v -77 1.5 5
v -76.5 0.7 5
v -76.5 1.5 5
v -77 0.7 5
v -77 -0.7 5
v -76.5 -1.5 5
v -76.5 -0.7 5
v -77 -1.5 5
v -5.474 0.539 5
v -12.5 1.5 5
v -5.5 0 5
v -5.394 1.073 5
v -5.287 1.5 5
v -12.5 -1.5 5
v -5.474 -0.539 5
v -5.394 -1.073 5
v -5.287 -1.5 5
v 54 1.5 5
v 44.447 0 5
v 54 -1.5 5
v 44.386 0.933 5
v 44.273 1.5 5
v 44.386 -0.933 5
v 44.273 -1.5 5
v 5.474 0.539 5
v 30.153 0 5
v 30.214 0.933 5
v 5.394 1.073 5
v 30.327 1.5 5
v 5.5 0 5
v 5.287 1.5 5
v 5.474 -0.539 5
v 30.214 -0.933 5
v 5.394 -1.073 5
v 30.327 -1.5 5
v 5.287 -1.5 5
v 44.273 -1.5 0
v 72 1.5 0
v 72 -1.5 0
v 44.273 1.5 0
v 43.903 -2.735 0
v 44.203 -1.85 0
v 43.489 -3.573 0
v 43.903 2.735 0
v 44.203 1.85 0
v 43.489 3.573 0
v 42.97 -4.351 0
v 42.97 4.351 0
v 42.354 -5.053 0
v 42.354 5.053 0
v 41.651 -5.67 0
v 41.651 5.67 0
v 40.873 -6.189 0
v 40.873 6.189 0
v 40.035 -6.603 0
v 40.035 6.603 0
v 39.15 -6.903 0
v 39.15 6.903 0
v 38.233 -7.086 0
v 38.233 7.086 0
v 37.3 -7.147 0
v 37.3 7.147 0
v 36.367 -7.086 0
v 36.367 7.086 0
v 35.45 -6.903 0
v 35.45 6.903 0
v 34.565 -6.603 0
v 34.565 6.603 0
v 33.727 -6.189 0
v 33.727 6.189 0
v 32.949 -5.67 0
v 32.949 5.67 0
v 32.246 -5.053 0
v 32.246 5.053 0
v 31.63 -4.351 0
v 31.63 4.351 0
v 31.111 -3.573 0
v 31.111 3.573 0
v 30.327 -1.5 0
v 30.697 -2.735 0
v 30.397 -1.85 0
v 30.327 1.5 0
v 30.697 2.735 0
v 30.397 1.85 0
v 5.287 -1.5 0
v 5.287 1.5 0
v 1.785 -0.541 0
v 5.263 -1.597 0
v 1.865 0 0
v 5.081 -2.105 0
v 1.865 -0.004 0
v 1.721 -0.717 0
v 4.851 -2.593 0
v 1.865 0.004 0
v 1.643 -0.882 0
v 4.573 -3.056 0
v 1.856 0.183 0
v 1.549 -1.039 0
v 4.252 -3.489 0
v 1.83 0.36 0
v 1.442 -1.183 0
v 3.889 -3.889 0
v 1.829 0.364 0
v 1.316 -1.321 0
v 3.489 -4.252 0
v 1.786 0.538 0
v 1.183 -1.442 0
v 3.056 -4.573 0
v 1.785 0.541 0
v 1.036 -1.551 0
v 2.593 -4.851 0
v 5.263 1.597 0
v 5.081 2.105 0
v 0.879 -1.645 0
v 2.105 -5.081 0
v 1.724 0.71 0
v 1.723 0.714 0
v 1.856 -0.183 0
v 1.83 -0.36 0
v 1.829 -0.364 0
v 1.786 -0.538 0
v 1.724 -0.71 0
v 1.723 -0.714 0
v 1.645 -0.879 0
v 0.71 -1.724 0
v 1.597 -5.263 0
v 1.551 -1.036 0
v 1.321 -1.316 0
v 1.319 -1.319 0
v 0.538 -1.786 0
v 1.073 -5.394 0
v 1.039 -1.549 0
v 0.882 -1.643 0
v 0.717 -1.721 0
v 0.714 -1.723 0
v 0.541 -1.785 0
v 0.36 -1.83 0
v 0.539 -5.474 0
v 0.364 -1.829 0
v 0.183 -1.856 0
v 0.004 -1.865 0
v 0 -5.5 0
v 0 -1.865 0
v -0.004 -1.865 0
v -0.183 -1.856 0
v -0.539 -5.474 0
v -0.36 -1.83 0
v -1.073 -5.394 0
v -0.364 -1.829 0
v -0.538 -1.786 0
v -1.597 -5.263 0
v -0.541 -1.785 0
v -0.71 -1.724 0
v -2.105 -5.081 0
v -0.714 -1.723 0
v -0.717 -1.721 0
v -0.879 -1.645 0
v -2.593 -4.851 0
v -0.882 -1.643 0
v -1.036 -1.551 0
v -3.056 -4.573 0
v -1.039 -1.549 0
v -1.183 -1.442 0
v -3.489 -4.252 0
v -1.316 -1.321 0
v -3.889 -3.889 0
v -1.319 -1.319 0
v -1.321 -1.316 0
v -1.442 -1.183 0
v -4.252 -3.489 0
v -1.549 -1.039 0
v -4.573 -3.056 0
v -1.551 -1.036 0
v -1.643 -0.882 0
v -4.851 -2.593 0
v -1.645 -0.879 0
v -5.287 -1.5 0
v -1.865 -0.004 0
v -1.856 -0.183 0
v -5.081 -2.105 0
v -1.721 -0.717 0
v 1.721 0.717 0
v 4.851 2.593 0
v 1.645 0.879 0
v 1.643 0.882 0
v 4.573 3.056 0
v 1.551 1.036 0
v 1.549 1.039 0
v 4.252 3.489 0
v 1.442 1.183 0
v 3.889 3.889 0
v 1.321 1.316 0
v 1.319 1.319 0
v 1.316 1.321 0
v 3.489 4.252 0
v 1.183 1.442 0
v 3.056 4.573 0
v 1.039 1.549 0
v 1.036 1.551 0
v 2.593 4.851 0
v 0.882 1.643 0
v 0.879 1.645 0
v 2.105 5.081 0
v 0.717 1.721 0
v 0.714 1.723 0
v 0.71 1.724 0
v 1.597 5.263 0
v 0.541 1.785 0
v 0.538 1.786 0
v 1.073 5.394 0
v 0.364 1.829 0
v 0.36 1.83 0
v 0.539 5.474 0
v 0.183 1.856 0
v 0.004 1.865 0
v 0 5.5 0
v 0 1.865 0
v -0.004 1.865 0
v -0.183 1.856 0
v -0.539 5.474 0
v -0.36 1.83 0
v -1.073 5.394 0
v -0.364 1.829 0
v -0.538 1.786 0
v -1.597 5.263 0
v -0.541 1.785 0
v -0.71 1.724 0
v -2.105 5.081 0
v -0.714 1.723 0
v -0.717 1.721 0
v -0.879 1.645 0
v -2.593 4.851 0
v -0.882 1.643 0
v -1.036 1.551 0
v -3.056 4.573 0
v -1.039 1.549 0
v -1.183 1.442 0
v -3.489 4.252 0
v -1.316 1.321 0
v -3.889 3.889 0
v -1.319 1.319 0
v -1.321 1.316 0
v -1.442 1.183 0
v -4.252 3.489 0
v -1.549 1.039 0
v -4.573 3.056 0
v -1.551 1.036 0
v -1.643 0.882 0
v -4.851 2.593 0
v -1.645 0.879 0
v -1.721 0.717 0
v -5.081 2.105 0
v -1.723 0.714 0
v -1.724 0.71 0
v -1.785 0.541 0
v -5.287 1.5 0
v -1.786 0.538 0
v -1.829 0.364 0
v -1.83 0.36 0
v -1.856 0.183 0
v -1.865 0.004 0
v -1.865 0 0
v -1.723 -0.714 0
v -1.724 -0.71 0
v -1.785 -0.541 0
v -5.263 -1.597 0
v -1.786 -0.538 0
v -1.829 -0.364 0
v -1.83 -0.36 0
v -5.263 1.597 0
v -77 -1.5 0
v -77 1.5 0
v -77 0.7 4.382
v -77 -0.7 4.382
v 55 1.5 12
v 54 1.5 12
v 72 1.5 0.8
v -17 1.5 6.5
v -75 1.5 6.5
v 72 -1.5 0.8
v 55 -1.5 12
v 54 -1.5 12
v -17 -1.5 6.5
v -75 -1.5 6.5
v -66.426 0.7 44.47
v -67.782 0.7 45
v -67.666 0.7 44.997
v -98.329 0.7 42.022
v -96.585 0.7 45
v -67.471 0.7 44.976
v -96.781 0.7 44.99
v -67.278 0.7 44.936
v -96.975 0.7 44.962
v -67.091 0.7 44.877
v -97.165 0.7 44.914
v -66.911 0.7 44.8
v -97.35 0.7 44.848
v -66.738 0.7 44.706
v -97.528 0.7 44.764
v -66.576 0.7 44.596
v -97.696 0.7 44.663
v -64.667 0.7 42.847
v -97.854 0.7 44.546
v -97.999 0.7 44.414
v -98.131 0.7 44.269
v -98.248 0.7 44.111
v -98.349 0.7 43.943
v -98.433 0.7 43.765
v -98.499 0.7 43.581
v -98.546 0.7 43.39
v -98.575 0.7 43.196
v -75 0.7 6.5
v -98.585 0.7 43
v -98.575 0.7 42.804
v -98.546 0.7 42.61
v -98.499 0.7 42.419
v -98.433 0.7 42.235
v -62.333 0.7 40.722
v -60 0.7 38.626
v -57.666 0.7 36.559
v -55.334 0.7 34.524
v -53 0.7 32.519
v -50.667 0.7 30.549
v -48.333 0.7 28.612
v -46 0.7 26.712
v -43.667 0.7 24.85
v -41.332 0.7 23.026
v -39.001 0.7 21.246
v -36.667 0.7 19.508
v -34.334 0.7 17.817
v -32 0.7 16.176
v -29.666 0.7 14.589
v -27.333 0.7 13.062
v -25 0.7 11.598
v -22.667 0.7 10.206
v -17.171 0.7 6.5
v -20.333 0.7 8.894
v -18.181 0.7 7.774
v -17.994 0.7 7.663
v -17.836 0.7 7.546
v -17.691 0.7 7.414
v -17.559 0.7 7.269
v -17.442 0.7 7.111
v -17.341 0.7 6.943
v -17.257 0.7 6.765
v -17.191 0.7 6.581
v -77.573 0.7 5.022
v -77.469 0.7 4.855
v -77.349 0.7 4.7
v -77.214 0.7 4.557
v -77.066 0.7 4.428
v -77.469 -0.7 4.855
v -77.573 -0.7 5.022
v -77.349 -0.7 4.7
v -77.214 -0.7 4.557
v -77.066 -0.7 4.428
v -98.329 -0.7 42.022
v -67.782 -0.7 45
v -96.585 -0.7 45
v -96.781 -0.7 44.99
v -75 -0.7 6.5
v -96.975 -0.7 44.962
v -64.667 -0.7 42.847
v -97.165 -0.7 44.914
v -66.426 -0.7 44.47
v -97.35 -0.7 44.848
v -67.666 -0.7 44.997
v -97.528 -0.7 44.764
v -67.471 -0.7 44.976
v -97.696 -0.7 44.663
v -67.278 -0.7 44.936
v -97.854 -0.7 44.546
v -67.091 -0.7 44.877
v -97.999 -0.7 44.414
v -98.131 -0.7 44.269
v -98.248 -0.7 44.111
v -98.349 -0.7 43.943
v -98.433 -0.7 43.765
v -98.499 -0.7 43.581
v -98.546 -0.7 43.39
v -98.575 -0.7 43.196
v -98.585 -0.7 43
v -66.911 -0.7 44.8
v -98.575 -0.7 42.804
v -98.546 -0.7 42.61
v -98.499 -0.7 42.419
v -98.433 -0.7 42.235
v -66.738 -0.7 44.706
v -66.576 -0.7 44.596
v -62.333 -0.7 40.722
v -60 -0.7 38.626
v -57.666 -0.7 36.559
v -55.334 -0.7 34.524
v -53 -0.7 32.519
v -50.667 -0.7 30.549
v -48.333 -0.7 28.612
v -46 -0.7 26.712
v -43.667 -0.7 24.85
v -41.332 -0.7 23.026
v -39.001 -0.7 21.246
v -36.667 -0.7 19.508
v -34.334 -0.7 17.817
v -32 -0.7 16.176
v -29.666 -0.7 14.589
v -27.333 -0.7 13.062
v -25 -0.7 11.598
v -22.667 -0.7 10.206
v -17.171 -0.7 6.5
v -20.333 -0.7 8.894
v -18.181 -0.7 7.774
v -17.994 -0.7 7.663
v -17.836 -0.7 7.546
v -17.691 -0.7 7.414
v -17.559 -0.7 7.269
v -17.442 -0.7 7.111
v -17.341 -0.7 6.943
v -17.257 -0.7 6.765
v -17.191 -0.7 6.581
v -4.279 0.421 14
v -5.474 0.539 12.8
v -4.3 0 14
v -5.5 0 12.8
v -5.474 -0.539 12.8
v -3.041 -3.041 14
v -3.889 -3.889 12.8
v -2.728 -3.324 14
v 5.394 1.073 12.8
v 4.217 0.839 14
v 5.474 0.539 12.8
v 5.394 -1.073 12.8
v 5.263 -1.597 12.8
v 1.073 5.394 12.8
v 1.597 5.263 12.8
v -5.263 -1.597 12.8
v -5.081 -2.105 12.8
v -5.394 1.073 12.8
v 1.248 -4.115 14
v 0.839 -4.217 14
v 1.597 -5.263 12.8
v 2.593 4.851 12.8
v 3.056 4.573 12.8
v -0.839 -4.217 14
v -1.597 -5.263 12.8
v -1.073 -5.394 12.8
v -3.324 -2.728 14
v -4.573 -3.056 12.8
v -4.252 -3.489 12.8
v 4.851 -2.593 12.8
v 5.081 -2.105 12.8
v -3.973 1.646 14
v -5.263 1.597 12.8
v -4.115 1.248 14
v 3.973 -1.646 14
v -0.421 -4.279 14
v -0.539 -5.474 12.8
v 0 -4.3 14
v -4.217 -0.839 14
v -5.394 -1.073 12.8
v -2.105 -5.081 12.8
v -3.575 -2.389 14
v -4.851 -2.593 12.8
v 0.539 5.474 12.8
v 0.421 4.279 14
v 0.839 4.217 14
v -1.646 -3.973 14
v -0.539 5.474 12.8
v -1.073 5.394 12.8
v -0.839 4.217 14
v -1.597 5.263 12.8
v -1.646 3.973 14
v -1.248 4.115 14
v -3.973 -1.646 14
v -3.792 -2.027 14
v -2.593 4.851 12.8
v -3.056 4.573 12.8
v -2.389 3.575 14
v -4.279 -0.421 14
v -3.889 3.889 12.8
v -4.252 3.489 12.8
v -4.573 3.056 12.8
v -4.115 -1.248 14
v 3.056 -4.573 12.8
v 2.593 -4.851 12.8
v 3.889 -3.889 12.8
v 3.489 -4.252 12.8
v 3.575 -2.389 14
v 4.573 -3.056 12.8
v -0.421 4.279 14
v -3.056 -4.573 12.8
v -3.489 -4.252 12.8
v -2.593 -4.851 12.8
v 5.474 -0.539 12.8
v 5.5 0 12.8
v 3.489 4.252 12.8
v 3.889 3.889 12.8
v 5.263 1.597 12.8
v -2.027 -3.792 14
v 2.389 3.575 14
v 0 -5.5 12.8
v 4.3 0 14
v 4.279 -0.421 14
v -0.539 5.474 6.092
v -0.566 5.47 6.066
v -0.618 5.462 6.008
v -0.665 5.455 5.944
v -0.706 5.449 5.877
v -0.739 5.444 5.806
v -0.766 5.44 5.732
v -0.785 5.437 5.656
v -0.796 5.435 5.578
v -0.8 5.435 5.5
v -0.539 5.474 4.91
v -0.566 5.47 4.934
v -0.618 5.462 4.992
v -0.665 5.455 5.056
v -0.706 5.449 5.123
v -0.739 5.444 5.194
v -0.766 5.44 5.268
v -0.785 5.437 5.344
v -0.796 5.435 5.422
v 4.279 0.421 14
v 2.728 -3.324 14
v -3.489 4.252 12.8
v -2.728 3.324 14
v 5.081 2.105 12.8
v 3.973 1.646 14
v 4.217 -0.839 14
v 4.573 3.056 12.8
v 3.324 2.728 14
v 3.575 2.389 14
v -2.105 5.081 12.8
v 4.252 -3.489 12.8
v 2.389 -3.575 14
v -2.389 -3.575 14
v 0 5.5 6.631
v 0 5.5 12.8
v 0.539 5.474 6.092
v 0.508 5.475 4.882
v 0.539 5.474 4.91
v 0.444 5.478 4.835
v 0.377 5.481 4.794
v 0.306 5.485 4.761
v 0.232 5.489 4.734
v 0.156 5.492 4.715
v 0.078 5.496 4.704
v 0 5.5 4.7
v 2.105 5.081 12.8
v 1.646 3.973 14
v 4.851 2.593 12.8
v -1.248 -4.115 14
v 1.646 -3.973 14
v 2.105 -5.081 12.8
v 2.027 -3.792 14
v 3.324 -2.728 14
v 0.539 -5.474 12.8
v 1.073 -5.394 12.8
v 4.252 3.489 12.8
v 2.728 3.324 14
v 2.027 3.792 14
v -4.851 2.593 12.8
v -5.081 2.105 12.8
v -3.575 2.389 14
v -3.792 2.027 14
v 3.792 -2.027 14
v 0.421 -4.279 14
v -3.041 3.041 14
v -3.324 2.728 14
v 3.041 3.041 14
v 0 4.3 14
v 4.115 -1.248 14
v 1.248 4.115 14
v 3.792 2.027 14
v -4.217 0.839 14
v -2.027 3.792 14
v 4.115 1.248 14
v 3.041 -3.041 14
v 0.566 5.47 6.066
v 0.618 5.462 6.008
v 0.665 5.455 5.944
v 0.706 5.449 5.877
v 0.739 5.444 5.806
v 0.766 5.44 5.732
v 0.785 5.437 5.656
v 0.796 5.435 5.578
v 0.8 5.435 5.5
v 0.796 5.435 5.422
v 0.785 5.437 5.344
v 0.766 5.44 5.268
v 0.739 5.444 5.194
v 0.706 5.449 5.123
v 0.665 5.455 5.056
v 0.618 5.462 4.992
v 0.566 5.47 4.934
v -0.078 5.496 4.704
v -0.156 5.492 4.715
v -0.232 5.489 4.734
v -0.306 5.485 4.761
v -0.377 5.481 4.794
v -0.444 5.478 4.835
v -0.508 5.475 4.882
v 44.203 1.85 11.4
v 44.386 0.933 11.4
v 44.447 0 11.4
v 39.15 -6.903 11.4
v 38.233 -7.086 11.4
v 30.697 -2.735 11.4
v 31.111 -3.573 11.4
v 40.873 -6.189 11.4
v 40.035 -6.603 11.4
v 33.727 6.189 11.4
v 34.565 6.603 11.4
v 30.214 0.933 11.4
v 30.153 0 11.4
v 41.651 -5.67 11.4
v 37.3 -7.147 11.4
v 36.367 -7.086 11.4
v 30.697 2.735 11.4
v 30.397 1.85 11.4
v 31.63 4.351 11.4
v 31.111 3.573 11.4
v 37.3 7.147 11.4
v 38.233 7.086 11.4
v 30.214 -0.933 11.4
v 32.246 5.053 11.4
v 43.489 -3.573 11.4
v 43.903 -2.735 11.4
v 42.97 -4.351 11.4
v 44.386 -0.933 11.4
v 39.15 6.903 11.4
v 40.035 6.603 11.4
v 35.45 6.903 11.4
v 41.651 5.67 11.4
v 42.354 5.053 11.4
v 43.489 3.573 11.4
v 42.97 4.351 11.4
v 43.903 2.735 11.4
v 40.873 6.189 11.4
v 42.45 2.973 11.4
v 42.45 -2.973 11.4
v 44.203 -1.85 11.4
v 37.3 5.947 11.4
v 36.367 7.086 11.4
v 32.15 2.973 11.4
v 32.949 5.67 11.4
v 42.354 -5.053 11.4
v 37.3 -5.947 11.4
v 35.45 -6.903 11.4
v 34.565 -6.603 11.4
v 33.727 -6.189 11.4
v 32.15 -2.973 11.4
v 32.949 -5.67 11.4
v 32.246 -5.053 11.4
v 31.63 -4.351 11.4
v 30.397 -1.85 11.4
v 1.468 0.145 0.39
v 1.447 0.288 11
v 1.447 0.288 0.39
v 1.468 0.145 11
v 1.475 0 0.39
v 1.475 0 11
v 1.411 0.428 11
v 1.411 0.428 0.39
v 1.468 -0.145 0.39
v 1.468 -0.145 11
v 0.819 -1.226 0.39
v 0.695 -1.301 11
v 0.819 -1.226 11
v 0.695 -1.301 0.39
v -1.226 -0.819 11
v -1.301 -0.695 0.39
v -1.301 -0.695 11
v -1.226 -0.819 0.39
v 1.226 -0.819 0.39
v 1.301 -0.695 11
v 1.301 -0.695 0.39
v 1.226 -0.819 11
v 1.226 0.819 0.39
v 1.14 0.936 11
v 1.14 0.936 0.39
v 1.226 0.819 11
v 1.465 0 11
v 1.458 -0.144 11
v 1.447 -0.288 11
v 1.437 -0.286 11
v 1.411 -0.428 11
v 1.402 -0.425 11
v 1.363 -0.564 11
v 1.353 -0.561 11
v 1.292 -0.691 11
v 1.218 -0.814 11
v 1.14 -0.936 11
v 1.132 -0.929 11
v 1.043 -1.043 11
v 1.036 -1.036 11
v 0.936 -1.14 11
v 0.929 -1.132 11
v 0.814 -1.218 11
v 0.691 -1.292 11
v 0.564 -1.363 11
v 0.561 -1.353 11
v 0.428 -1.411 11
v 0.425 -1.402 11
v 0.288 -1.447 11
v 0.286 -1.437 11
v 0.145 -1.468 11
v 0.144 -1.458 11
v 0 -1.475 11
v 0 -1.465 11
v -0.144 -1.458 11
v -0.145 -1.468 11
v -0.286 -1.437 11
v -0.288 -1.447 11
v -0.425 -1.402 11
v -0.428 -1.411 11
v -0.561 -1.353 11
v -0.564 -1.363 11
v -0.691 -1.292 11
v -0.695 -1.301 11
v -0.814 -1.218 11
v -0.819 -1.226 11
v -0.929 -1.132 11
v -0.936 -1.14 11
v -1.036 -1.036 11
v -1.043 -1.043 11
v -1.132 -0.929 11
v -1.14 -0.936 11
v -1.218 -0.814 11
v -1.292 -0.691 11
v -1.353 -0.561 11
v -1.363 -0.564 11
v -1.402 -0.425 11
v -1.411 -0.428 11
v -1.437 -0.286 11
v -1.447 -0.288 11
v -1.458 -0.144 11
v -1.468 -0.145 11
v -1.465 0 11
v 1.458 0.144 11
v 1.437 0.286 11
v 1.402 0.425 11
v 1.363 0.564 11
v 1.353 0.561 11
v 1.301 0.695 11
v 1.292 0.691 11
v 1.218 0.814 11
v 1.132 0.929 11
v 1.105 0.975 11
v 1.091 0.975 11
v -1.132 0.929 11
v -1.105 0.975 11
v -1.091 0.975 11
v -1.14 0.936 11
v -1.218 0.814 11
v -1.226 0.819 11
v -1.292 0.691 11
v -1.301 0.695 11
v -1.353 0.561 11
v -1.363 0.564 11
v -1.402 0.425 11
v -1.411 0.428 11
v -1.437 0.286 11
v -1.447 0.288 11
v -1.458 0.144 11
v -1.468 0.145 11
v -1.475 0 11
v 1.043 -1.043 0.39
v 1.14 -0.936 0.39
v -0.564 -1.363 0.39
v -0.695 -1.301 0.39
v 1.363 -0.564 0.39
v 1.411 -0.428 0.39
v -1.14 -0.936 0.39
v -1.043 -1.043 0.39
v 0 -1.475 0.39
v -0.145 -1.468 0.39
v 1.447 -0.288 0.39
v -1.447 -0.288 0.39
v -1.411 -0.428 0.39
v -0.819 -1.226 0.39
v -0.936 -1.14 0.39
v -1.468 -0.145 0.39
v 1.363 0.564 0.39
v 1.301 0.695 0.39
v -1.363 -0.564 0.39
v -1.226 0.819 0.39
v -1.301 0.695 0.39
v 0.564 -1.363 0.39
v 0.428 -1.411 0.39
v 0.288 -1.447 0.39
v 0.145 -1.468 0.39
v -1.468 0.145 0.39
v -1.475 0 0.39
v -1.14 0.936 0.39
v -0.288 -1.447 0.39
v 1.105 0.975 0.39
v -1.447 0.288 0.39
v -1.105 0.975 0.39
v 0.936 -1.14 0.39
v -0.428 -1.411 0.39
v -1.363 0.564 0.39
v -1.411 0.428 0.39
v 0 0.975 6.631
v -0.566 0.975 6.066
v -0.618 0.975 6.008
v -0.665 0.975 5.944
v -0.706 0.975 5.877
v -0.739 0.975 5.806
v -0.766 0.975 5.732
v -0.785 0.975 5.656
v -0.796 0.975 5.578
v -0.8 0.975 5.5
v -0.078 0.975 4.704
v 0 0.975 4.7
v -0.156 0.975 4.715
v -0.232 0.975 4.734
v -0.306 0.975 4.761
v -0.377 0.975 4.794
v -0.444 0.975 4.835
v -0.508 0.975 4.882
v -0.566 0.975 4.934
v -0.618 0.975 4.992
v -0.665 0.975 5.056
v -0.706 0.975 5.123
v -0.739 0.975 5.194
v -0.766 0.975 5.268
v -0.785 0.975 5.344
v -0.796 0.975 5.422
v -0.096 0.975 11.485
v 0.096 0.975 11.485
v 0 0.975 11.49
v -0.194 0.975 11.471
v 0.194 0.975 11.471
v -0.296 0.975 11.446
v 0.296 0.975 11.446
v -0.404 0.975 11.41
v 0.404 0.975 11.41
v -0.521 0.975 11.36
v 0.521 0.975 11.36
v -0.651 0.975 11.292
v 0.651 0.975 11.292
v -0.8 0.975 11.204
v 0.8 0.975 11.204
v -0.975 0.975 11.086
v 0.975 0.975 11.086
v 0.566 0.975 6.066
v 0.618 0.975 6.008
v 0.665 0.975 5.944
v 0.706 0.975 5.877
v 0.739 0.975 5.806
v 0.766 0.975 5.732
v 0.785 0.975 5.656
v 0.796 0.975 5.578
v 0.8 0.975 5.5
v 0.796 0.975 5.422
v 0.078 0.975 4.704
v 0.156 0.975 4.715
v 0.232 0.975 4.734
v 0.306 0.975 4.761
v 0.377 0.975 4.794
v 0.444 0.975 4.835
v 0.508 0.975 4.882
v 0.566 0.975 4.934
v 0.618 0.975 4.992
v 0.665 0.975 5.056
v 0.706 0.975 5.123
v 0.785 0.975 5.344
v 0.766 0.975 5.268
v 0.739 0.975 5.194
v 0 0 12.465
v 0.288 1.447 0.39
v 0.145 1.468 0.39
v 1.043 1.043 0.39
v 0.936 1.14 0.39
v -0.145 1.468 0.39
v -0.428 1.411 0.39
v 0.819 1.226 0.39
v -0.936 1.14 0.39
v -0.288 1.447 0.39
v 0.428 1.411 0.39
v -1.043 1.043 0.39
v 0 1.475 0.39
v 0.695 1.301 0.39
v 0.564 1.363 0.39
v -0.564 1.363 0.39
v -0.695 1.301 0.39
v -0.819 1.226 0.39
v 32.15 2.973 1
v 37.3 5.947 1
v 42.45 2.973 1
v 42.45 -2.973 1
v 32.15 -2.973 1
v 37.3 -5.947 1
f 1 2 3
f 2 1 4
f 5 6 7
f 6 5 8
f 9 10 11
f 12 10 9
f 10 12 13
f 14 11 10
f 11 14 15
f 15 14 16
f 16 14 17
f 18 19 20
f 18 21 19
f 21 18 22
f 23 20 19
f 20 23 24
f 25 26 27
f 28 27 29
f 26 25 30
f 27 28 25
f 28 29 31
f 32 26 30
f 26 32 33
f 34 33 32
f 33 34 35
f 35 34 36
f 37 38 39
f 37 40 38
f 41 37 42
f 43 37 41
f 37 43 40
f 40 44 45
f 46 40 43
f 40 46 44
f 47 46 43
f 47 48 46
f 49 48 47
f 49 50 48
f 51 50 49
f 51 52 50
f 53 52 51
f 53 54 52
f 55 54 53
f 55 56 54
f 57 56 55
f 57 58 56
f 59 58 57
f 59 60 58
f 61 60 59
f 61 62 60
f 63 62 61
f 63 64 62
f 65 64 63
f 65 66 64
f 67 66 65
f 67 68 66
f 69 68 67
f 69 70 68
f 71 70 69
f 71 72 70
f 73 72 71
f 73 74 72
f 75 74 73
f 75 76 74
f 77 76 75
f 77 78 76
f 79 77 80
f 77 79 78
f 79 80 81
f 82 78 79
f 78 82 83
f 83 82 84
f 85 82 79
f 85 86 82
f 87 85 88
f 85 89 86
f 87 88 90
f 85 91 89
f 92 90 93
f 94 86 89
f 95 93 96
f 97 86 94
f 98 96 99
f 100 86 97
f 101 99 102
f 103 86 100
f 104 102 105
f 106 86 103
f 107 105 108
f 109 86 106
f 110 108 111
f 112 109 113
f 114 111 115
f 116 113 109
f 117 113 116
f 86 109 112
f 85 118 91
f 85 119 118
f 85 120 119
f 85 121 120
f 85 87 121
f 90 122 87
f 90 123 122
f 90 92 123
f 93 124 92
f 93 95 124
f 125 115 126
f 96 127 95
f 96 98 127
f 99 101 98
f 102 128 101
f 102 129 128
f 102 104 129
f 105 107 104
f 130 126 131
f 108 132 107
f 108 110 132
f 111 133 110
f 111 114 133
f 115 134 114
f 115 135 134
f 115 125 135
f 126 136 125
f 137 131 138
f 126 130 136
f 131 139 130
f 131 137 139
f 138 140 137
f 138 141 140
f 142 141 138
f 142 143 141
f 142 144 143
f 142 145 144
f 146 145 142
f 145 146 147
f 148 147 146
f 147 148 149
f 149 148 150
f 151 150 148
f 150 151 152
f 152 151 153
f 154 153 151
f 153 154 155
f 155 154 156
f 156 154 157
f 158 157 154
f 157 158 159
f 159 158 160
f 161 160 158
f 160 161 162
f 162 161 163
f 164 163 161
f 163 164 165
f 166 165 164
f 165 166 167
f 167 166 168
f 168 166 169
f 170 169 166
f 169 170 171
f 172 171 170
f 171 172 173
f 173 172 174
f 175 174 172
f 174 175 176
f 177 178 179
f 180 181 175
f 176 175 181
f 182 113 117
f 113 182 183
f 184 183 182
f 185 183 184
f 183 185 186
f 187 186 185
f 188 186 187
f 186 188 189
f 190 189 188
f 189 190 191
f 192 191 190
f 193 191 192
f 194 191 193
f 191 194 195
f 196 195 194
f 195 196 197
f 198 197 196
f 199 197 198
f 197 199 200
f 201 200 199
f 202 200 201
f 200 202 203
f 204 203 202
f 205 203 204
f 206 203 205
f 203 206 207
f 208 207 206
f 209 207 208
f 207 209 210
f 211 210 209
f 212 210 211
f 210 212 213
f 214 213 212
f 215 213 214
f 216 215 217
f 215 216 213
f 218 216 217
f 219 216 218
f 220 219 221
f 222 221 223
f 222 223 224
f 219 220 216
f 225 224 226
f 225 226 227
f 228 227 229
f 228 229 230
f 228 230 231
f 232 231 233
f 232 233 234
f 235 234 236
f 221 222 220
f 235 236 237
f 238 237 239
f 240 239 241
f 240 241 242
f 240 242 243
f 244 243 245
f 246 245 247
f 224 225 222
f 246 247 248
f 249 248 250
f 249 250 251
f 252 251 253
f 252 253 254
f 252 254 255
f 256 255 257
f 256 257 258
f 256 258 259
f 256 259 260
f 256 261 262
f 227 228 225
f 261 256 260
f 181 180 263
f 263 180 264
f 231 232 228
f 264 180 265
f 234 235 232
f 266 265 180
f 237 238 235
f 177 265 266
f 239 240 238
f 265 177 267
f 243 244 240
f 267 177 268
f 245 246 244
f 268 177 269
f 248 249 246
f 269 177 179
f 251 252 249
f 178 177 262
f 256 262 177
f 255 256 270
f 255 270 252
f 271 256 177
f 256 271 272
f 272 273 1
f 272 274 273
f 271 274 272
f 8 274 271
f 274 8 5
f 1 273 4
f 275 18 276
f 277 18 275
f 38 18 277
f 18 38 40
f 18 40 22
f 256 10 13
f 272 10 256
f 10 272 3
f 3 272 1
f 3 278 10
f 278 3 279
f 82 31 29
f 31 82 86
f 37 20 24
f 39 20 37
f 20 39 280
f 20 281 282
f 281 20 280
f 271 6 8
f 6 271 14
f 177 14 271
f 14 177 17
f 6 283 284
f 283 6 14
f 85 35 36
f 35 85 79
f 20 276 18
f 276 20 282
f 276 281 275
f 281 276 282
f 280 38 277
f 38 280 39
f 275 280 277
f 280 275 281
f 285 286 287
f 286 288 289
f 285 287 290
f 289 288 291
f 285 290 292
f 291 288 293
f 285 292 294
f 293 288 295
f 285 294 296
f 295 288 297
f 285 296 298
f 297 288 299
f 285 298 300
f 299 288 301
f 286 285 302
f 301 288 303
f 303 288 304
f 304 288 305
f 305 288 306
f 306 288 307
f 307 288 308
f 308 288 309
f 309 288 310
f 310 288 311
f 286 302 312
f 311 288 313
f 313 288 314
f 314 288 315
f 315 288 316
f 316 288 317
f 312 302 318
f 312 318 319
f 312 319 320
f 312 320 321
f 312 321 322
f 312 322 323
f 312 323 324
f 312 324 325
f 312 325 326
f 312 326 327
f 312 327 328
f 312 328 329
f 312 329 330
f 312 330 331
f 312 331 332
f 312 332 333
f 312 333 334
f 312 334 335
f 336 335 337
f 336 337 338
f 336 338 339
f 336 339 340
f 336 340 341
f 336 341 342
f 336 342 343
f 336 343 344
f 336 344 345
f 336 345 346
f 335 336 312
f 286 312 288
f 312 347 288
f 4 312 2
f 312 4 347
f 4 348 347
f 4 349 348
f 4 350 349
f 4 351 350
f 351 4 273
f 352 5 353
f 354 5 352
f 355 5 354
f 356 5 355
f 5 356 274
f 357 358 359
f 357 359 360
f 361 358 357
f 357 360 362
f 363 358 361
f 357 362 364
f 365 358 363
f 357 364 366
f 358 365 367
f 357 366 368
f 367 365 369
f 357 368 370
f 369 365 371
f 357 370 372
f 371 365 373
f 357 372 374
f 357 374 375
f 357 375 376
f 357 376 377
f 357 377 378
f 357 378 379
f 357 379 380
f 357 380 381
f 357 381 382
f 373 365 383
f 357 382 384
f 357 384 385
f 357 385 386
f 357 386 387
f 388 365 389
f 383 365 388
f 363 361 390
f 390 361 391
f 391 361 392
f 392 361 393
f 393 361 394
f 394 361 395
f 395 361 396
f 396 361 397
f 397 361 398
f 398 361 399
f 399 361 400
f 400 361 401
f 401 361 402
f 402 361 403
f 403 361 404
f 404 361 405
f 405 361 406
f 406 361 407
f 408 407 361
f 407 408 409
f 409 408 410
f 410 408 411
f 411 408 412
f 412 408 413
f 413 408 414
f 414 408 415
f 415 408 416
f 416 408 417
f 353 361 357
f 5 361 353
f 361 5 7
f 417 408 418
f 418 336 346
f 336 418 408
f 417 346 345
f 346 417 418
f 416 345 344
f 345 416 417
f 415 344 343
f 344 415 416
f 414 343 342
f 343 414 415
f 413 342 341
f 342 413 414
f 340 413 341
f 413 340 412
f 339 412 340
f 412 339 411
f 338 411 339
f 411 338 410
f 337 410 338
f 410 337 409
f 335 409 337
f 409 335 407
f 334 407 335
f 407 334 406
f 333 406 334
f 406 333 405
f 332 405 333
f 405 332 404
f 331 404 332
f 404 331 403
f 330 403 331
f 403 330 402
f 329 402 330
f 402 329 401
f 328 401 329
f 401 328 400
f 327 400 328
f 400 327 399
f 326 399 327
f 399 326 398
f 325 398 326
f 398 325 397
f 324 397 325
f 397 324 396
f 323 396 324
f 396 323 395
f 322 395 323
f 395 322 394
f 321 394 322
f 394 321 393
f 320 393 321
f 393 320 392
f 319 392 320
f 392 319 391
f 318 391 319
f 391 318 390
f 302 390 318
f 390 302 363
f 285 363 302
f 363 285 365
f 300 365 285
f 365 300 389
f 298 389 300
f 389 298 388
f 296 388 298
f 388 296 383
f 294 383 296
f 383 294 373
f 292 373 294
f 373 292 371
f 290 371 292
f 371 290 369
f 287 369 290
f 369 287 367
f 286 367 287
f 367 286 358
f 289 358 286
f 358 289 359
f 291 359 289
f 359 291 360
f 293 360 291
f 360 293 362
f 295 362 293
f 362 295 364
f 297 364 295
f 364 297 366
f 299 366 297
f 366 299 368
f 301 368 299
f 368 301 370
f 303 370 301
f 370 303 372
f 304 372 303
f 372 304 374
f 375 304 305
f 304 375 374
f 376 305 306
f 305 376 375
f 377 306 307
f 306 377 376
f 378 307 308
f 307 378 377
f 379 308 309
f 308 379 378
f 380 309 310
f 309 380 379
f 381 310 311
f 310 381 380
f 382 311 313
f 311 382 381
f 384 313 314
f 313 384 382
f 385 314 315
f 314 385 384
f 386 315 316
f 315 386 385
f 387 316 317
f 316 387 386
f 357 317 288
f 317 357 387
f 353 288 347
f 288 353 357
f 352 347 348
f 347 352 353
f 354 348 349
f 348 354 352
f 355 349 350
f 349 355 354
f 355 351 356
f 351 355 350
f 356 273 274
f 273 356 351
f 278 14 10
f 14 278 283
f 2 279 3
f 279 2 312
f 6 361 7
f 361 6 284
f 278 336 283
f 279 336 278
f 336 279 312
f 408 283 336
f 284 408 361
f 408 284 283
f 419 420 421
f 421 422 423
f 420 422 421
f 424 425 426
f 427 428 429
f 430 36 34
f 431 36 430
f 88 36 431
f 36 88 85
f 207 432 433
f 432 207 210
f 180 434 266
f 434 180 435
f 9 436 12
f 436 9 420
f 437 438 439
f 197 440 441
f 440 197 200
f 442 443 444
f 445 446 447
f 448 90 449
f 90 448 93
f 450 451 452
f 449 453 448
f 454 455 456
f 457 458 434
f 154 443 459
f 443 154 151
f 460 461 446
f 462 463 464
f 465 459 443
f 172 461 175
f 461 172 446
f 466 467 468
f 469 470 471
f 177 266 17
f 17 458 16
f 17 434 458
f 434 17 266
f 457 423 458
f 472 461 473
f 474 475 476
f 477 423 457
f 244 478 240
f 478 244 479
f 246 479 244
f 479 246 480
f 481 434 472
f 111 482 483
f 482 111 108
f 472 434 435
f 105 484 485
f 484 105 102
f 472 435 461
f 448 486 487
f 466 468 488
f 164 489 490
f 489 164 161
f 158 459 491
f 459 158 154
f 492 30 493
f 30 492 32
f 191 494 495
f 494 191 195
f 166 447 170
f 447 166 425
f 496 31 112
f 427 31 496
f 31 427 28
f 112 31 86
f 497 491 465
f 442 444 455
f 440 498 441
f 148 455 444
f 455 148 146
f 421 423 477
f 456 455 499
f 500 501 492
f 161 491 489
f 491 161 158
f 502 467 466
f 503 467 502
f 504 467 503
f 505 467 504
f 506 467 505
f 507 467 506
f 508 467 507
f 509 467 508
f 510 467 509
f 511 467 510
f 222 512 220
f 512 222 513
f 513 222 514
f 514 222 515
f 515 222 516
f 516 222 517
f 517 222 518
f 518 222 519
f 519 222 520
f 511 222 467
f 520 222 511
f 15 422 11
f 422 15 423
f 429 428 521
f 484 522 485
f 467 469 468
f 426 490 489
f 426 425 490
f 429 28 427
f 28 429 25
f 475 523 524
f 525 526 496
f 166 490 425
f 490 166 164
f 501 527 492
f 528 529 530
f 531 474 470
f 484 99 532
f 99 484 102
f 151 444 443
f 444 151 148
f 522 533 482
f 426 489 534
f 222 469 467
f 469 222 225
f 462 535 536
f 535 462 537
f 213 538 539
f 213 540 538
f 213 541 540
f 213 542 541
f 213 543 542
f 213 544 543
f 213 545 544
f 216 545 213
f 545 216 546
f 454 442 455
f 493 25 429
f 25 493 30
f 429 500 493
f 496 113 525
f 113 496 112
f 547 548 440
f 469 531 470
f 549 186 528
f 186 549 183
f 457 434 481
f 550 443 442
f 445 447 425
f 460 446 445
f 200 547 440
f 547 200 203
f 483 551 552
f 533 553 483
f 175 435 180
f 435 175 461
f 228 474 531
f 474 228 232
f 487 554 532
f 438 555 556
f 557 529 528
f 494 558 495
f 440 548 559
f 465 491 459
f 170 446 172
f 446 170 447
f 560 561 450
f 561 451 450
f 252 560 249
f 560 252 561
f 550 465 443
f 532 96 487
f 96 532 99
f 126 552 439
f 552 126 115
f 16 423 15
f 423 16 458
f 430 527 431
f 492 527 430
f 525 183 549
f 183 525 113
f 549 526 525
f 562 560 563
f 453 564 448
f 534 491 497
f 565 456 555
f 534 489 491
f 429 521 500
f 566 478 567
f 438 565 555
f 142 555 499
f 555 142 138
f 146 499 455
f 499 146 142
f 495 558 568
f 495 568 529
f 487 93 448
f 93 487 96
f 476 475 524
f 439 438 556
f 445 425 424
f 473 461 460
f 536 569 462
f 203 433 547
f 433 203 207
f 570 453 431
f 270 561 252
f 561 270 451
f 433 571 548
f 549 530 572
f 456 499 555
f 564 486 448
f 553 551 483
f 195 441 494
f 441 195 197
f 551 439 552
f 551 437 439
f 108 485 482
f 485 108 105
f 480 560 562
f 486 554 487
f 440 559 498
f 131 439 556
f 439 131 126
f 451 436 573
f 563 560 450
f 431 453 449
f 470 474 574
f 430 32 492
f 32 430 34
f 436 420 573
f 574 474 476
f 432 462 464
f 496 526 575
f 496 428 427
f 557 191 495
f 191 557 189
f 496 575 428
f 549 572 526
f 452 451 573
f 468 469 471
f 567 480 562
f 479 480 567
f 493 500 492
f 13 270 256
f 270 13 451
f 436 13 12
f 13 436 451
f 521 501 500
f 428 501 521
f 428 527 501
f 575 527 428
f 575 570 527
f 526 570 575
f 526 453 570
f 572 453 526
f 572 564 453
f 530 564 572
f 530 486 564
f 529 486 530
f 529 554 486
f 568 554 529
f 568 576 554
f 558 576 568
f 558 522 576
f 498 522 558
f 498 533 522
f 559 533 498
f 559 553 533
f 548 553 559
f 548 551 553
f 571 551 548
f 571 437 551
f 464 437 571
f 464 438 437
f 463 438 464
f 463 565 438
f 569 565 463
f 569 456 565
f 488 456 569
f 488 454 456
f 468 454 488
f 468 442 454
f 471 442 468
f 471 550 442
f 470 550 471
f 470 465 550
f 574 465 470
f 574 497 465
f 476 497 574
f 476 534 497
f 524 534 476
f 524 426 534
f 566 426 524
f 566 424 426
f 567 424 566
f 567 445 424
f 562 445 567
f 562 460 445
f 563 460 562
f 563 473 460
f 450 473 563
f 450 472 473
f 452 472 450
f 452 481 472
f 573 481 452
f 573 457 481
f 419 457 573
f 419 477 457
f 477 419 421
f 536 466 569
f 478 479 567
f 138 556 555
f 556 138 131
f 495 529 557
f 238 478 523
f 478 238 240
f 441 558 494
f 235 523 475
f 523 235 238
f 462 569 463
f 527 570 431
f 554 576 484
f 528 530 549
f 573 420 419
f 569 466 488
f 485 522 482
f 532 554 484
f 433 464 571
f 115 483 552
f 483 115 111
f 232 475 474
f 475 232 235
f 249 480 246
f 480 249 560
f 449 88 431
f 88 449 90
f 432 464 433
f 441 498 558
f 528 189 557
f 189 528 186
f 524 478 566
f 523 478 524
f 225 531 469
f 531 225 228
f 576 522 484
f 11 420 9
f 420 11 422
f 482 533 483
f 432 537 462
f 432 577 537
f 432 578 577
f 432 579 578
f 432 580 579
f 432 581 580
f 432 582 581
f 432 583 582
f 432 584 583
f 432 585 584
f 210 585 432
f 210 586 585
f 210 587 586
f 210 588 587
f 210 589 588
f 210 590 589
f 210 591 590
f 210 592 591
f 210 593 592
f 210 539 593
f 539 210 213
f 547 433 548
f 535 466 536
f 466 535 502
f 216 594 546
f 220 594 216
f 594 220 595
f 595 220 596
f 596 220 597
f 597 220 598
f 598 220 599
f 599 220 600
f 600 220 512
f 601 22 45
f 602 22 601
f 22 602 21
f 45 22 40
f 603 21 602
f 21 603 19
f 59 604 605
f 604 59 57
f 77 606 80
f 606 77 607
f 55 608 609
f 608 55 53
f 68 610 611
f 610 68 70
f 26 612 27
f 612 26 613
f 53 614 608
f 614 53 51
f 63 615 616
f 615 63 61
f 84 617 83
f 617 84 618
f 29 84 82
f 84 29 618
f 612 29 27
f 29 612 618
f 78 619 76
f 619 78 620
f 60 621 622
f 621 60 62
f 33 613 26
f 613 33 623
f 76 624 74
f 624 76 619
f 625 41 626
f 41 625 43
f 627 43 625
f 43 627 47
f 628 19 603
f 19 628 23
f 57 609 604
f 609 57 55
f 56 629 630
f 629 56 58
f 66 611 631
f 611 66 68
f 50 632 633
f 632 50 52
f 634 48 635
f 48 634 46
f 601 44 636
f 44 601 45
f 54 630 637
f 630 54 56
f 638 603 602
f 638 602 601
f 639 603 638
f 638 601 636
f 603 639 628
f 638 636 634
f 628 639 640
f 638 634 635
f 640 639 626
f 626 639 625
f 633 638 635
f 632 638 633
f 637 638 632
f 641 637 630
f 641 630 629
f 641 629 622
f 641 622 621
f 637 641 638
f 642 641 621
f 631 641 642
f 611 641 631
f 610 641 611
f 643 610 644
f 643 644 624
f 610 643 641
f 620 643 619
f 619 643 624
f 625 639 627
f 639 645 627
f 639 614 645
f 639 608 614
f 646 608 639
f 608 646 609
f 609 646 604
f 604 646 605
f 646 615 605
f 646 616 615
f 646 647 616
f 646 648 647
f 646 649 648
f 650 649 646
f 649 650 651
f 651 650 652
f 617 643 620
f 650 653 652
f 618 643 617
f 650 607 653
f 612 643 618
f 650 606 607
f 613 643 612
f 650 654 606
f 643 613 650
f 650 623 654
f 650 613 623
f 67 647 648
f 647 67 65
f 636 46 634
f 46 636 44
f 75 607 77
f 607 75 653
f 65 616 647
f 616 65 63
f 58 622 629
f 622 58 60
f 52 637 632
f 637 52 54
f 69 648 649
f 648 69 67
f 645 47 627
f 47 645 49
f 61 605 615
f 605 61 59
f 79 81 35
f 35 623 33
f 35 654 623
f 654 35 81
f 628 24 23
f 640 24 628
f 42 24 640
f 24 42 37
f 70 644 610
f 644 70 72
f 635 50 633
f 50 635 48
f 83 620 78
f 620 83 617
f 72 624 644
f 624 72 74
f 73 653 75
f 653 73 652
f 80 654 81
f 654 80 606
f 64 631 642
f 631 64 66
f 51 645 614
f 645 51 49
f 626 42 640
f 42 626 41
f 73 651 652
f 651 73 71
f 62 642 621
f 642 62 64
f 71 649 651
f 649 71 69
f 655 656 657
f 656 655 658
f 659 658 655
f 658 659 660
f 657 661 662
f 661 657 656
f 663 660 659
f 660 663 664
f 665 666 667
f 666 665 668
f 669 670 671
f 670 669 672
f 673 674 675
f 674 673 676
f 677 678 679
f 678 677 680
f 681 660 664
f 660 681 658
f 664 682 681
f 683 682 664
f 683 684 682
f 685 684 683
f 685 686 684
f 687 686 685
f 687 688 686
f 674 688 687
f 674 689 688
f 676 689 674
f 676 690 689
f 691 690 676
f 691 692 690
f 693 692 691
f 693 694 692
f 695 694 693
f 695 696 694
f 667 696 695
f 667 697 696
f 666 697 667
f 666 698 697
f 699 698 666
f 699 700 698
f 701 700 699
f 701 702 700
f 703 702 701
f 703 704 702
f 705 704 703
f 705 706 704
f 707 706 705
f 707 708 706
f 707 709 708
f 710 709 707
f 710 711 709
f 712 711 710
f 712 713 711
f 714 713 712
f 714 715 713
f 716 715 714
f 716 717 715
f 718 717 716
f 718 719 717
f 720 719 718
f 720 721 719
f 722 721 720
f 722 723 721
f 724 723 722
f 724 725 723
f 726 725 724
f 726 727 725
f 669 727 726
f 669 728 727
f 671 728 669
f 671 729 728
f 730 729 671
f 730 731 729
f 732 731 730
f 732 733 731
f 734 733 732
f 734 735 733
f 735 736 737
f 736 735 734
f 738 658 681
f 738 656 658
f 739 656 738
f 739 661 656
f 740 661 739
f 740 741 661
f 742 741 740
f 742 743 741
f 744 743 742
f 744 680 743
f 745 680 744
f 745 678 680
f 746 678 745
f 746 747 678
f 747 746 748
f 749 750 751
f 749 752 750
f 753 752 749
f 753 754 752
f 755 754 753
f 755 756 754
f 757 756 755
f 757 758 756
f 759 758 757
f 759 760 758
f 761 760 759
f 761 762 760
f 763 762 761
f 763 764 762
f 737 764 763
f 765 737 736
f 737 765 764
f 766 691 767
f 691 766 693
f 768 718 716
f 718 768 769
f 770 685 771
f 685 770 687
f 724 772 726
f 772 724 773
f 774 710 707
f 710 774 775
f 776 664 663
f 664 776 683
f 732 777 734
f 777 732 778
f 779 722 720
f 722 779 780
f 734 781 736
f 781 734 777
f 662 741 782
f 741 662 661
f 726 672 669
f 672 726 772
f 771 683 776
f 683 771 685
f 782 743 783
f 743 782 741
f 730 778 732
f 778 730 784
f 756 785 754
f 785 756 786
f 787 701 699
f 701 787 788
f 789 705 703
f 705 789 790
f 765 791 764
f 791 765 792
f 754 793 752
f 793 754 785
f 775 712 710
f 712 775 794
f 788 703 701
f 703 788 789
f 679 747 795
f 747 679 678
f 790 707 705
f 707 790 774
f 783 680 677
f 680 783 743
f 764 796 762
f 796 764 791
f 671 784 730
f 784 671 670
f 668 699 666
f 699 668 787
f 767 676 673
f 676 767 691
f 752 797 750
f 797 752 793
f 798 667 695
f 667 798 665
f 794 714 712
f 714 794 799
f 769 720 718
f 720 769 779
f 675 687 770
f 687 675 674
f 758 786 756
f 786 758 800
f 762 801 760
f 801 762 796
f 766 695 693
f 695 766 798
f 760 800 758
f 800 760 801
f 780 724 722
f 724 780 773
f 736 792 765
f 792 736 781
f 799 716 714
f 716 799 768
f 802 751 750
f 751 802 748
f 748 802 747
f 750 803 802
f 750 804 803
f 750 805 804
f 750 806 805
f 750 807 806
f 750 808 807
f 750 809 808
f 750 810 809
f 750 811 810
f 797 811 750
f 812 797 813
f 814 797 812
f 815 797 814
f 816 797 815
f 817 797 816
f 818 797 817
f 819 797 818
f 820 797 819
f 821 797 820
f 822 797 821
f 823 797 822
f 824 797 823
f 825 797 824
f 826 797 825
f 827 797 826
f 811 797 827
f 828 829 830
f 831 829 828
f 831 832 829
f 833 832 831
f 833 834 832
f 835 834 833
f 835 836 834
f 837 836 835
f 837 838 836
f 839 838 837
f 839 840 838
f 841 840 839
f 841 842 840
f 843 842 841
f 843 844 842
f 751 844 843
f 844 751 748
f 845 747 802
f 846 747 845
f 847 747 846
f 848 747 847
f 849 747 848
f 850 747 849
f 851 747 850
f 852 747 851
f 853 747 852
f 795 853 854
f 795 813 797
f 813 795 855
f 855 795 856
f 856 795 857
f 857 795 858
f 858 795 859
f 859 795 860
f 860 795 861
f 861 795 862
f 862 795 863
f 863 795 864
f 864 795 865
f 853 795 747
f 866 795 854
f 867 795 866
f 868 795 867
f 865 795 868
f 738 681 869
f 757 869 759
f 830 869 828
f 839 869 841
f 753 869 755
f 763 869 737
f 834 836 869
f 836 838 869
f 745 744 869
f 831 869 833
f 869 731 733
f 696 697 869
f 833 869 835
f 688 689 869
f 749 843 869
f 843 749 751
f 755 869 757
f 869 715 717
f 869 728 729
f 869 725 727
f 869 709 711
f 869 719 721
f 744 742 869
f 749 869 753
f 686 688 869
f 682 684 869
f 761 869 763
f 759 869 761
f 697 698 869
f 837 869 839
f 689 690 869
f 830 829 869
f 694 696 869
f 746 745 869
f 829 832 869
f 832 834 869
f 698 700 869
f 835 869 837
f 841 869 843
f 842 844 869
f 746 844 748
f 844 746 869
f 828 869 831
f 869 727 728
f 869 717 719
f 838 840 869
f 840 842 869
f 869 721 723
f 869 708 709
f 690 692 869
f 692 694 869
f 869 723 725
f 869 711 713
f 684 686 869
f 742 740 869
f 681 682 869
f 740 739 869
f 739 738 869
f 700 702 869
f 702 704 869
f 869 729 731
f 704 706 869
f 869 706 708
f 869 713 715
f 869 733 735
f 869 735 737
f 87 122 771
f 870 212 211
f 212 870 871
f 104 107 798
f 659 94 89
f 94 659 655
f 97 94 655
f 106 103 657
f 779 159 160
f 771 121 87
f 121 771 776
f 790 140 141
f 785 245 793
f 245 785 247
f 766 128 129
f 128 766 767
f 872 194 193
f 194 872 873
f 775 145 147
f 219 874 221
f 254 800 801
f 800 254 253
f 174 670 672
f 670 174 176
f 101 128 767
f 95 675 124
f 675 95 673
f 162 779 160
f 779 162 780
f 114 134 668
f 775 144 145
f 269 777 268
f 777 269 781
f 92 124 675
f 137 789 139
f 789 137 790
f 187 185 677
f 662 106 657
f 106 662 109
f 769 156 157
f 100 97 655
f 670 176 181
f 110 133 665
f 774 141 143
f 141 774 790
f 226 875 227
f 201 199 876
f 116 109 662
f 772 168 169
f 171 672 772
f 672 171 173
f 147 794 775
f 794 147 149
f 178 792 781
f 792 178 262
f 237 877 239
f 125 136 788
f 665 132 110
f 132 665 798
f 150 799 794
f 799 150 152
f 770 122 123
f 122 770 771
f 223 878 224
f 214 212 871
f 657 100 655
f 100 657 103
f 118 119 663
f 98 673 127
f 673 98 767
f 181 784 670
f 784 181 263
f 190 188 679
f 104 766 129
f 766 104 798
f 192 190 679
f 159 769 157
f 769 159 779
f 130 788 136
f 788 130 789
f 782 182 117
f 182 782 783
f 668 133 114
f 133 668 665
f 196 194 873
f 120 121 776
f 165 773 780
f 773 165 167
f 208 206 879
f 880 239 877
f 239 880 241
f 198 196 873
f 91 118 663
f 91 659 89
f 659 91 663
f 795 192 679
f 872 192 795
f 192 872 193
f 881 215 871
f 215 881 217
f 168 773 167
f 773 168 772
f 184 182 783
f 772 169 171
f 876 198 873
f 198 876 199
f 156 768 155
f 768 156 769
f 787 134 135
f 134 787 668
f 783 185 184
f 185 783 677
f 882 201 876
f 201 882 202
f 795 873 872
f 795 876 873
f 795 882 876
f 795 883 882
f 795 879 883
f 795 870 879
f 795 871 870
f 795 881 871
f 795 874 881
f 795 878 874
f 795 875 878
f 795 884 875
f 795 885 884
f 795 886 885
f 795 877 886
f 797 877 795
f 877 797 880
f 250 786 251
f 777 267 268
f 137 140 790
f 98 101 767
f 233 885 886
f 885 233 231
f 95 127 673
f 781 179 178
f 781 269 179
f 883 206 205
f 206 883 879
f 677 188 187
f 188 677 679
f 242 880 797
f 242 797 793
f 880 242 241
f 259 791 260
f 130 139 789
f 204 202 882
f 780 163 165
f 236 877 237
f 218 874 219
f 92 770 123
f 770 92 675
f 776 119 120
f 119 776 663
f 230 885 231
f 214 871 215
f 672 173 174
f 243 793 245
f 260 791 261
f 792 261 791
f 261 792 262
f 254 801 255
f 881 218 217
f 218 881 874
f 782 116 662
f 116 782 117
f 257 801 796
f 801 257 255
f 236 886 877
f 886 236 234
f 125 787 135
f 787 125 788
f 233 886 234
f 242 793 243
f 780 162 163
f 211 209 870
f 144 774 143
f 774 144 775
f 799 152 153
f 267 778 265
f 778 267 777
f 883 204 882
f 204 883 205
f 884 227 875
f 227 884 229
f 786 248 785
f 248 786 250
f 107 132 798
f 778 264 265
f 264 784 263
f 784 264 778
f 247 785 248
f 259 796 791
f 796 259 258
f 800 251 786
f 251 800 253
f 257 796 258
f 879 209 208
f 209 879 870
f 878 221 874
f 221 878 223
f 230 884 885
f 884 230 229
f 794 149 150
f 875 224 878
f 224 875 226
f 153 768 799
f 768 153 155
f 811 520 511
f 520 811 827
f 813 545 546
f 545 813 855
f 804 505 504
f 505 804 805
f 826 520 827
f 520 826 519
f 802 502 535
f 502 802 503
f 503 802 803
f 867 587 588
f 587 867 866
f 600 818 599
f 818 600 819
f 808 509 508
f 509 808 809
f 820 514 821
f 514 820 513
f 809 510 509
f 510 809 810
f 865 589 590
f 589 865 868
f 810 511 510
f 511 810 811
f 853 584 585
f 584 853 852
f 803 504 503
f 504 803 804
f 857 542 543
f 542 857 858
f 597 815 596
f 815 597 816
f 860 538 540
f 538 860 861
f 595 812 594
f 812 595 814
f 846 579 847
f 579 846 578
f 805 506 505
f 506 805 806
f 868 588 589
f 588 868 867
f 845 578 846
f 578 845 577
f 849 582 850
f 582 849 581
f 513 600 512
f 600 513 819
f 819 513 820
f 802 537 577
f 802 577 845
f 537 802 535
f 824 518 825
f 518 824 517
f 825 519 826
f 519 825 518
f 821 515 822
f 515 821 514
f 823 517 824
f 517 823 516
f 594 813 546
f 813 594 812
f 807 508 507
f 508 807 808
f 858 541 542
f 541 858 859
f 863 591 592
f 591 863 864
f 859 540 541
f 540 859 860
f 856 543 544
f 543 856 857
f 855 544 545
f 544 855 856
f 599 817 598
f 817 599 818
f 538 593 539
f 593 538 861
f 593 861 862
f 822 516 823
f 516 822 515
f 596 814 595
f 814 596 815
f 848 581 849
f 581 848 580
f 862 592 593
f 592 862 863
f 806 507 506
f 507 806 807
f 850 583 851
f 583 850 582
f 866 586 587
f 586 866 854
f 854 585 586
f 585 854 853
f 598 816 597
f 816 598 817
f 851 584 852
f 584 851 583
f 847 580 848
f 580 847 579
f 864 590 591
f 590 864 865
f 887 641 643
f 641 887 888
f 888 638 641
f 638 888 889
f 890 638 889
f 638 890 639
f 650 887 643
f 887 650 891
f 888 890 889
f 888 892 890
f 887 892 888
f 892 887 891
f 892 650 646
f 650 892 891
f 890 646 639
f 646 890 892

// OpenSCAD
// =====================================================================
//  Replacement wind-direction vane for VEVOR YT60231 weather station  (v2)
//  Parametric OpenSCAD model.  Units: mm.
//
//  v2: profile follows the original VEVOR vane (small half-barb arrow,
//  tall swept tail fin with a concave leading edge, ~175 mm overall).
//  Static balance comes from a small pod of steel hex nuts hidden behind the
//  arrow head, not from a big plastic arrow.  The balance doesn't depend on
//  infill: everything off the axis is <= 3 mm thick, so it slices solid.
//
//  Coordinate system (= print orientation = installed orientation):
//    Z  = shaft axis (up).  Bottom face (z=0) sits flat on the print bed.
//    +X = arrow (points INTO the wind).   -X = tail fin.
//  Prints with NO supports: hub upright, bore opens downward (blind, cone
//  roof), fin/arrow are vertical walls, set-screw hole is a teardrop.
// =====================================================================

/* [Shaft & bore] */
shaft_d        = 2.8;   // measured shaft diameter
flat_depth     = 0.5;   // D-flat depth. across-flat = shaft_d - flat_depth (default 2.3). MEASURE IT!
bore_clearance = 0.15;  // added to diameter AND across-flat (0.10 snug/ream, 0.20 loose)
bore_depth     = 11;    // shaft engagement depth
blind_bore     = true;  // true = closed top cap (keeps rain off the shaft)
bore_chamfer   = 0.4;

/* [Hub] */
hub_d          = 11;
hub_h          = 14;    // cap = hub_h - bore_depth (3 mm)
hub_top_chamfer= 1.2;
hub_recess_d   = 0;     // optional bottom counterbore to clear a boss/tab on the housing (0 = off)
hub_recess_h   = 0;     //   its depth; roof is a 45-degree cone, so it still prints support-free

/* [Set screw] */
screw_size     = "M2";  // "M2" or "M2.5"
screw_angle    = 90;    // CCW from the arrow (+X); the flat is centred under the screw
screw_z        = 5.5;   // = bore_depth/2
nut_trap       = false; // top-loading hex pocket for an M2/M2.5 nut
nut_clear      = 0.3;

/* [Arms] */
arm_w          = 3.0;   // horizontal width of the arm rib
arm_h          = 5.0;   // vertical height of the arm rib (from the bed)
nose_len       = 72;    // axis -> arrow tip           (original ~72 mm)
barb_len       = 18;    // length of the half-barb arrow head
barb_h         = 7;     // barb height above the arm rib

/* [Tail fin] (side-view profile of the original) */
tail_len_top   = 100;   // axis -> top trailing corner (original ~100 mm)
tail_len_bot   = 77;    // axis -> end of boom / bottom trailing corner (original ~77)
fin_top_chord  = 33;    // flat top edge (original ~33)
fin_h          = 45;    // fin top above the bed (original ~44 above the arm bottom)
fin_root_x     = 11;    // where the concave leading edge meets the arm near the hub
fin_curve      = 1.3;   // leading-edge concavity (1 = straight, 2 = strongly concave)
fin_t          = 1.4;   // fin thickness (2 perimeters + gap fill on a 0.4 nozzle)
fin_round      = 2;     // corner rounding

/* [Ballast] */
ballast        = "nuts"; // "nuts" = steel hex-nut pod (balanced), "none" = like the original (tail-heavy)
ballast_nut    = "M6";   // "M4","M5","M6","M8" (DIN 934 / ISO 4032 steel hex nuts)
ballast_count  = 2;      // number of nuts stacked in the pocket
ballast_x      = 37.3;   // pod centre from axis = BALANCE TUNING PARAMETER (tune.py)
pod_wall       = 1.2;
pod_floor      = 1.0;
pocket_clear   = 0.3;    // across-flats clearance (nuts drop in; fix with a dab of silicone/epoxy)

$fn = 64;
eps = 0.01;

// ---------------------------------------------------------------------
tap_d   = (screw_size == "M2.5") ? 2.05 : 1.6;
nut_af  = (screw_size == "M2.5") ? 5.0  : 4.0;
nut_t   = (screw_size == "M2.5") ? 2.0  : 1.6;
bore_r  = (shaft_d + bore_clearance) / 2;
flat_y  = (shaft_d - flat_depth) - shaft_d/2 + bore_clearance/2;

function bn(i) = ballast_nut == "M4" ? [7,3.2][i] : ballast_nut == "M5" ? [8,4][i]
               : ballast_nut == "M8" ? [13,6.5][i] : [10,5][i];
b_af   = bn(0);
b_t    = bn(1);
b_R    = (b_af + pocket_clear) / sqrt(3);          // pocket hex circumradius
pod_r  = b_R + pod_wall;
pocket_h = ballast_count * b_t + 0.4;
pod_h  = pod_floor + pocket_h;

module teardrop_y(d, len) {
    rotate([90,0,0]) translate([0,0,-len]) linear_extrude(len)
        union() { circle(d = d); rotate(45) square(d/2); }
}

module d_bore() {
    top = blind_bore ? bore_depth : hub_h + 1;
    intersection() {
        translate([0,0,-1]) cylinder(r = bore_r, h = top + 1);
        translate([-6, -6, -2]) cube([12, 6 + flat_y, top + 3]);
    }
    if (blind_bore)
        intersection() {
            translate([0,0,bore_depth - eps]) cylinder(r1 = bore_r, r2 = 0, h = bore_r);
            translate([-6, -6, 0]) cube([12, 6 + flat_y, 40]);
        }
    translate([0,0,-eps]) cylinder(r1 = bore_r + bore_chamfer, r2 = bore_r, h = bore_chamfer);
}

module screw_features() {
    translate([0, flat_y - 0.5, screw_z]) teardrop_y(tap_d, hub_d);
    if (nut_trap) {
        ny = flat_y + 0.6;
        R  = (nut_af + nut_clear) / sqrt(3);
        translate([0, ny, 0]) rotate([90,0,0]) translate([0,0,-(nut_t + nut_clear)])
            linear_extrude(nut_t + nut_clear)
                hull() {
                    translate([0, screw_z]) rotate(90) circle(r = R, $fn = 6);
                    translate([0, hub_h + 2]) rotate(90) circle(r = R, $fn = 6);
                }
    }
}

module hub_recess() {
    if (hub_recess_d > 0 && hub_recess_h > 0) {
        translate([0,0,-eps]) cylinder(d = hub_recess_d, h = hub_recess_h + eps);
        translate([0,0,hub_recess_h - eps]) cylinder(r1 = hub_recess_d/2, r2 = 0, h = hub_recess_d/2);
    }
}

module hub() {
    rotate_extrude() polygon([
        [0,0], [hub_d/2, 0], [hub_d/2, hub_h - hub_top_chamfer],
        [hub_d/2 - hub_top_chamfer, hub_h], [0, hub_h]]);
}

// side-view (XZ) profile of arm + barb + fin, extruded to a thickness about y=0
module plate_xz(t) { translate([0, t/2, 0]) rotate([90,0,0]) linear_extrude(t) children(); }

module fin_2d() {
    n = 24;
    lead = [for (i = [0:n]) let(u = i/n)
              [-(tail_len_top - fin_top_chord) + ((tail_len_top - fin_top_chord) - fin_root_x) * u,
               arm_h + (fin_h - arm_h) * pow(1-u, fin_curve)]];
    offset(r = fin_round) offset(delta = -fin_round)
        polygon(concat([[-tail_len_top, fin_h]], lead,
                       [[-fin_root_x, arm_h - 1], [-tail_len_bot, arm_h - 1]]));
}

module barb_2d() {
    x0 = nose_len - barb_len;
    polygon([[x0, 0], [nose_len, 0], [nose_len, 0.8],
             [x0 + 1.0, arm_h + barb_h], [x0, arm_h + barb_h]]);
}

module arms() {
    // arm rib from tail end to arrow tip
    translate([-tail_len_bot, -arm_w/2, 0]) cube([tail_len_bot + nose_len - barb_len + 1, arm_w, arm_h]);
    plate_xz(arm_w) barb_2d();
    plate_xz(fin_t) fin_2d();
    // small root fillet strip so the thin fin is well anchored on the rib
    plate_xz(arm_w) polygon([[-tail_len_bot, arm_h - 0.5], [-fin_root_x, arm_h - 0.5],
                             [-fin_root_x - 6, arm_h + 1.5], [-tail_len_bot + 2, arm_h + 1.5]]);
}

module ballast_pod() {
    if (ballast == "nuts")
        translate([ballast_x, 0, 0]) cylinder(r = pod_r, h = pod_h, $fn = 48);
}
module ballast_pocket() {
    if (ballast == "nuts")
        translate([ballast_x, 0, pod_floor]) rotate(30) cylinder(r = b_R, h = pocket_h + 1, $fn = 6);
}

module wind_vane() {
    difference() {
        union() { hub(); arms(); ballast_pod(); }
        rotate(screw_angle - 90) { d_bore(); screw_features(); }
        hub_recess();
        ballast_pocket();
    }
}

wind_vane();
